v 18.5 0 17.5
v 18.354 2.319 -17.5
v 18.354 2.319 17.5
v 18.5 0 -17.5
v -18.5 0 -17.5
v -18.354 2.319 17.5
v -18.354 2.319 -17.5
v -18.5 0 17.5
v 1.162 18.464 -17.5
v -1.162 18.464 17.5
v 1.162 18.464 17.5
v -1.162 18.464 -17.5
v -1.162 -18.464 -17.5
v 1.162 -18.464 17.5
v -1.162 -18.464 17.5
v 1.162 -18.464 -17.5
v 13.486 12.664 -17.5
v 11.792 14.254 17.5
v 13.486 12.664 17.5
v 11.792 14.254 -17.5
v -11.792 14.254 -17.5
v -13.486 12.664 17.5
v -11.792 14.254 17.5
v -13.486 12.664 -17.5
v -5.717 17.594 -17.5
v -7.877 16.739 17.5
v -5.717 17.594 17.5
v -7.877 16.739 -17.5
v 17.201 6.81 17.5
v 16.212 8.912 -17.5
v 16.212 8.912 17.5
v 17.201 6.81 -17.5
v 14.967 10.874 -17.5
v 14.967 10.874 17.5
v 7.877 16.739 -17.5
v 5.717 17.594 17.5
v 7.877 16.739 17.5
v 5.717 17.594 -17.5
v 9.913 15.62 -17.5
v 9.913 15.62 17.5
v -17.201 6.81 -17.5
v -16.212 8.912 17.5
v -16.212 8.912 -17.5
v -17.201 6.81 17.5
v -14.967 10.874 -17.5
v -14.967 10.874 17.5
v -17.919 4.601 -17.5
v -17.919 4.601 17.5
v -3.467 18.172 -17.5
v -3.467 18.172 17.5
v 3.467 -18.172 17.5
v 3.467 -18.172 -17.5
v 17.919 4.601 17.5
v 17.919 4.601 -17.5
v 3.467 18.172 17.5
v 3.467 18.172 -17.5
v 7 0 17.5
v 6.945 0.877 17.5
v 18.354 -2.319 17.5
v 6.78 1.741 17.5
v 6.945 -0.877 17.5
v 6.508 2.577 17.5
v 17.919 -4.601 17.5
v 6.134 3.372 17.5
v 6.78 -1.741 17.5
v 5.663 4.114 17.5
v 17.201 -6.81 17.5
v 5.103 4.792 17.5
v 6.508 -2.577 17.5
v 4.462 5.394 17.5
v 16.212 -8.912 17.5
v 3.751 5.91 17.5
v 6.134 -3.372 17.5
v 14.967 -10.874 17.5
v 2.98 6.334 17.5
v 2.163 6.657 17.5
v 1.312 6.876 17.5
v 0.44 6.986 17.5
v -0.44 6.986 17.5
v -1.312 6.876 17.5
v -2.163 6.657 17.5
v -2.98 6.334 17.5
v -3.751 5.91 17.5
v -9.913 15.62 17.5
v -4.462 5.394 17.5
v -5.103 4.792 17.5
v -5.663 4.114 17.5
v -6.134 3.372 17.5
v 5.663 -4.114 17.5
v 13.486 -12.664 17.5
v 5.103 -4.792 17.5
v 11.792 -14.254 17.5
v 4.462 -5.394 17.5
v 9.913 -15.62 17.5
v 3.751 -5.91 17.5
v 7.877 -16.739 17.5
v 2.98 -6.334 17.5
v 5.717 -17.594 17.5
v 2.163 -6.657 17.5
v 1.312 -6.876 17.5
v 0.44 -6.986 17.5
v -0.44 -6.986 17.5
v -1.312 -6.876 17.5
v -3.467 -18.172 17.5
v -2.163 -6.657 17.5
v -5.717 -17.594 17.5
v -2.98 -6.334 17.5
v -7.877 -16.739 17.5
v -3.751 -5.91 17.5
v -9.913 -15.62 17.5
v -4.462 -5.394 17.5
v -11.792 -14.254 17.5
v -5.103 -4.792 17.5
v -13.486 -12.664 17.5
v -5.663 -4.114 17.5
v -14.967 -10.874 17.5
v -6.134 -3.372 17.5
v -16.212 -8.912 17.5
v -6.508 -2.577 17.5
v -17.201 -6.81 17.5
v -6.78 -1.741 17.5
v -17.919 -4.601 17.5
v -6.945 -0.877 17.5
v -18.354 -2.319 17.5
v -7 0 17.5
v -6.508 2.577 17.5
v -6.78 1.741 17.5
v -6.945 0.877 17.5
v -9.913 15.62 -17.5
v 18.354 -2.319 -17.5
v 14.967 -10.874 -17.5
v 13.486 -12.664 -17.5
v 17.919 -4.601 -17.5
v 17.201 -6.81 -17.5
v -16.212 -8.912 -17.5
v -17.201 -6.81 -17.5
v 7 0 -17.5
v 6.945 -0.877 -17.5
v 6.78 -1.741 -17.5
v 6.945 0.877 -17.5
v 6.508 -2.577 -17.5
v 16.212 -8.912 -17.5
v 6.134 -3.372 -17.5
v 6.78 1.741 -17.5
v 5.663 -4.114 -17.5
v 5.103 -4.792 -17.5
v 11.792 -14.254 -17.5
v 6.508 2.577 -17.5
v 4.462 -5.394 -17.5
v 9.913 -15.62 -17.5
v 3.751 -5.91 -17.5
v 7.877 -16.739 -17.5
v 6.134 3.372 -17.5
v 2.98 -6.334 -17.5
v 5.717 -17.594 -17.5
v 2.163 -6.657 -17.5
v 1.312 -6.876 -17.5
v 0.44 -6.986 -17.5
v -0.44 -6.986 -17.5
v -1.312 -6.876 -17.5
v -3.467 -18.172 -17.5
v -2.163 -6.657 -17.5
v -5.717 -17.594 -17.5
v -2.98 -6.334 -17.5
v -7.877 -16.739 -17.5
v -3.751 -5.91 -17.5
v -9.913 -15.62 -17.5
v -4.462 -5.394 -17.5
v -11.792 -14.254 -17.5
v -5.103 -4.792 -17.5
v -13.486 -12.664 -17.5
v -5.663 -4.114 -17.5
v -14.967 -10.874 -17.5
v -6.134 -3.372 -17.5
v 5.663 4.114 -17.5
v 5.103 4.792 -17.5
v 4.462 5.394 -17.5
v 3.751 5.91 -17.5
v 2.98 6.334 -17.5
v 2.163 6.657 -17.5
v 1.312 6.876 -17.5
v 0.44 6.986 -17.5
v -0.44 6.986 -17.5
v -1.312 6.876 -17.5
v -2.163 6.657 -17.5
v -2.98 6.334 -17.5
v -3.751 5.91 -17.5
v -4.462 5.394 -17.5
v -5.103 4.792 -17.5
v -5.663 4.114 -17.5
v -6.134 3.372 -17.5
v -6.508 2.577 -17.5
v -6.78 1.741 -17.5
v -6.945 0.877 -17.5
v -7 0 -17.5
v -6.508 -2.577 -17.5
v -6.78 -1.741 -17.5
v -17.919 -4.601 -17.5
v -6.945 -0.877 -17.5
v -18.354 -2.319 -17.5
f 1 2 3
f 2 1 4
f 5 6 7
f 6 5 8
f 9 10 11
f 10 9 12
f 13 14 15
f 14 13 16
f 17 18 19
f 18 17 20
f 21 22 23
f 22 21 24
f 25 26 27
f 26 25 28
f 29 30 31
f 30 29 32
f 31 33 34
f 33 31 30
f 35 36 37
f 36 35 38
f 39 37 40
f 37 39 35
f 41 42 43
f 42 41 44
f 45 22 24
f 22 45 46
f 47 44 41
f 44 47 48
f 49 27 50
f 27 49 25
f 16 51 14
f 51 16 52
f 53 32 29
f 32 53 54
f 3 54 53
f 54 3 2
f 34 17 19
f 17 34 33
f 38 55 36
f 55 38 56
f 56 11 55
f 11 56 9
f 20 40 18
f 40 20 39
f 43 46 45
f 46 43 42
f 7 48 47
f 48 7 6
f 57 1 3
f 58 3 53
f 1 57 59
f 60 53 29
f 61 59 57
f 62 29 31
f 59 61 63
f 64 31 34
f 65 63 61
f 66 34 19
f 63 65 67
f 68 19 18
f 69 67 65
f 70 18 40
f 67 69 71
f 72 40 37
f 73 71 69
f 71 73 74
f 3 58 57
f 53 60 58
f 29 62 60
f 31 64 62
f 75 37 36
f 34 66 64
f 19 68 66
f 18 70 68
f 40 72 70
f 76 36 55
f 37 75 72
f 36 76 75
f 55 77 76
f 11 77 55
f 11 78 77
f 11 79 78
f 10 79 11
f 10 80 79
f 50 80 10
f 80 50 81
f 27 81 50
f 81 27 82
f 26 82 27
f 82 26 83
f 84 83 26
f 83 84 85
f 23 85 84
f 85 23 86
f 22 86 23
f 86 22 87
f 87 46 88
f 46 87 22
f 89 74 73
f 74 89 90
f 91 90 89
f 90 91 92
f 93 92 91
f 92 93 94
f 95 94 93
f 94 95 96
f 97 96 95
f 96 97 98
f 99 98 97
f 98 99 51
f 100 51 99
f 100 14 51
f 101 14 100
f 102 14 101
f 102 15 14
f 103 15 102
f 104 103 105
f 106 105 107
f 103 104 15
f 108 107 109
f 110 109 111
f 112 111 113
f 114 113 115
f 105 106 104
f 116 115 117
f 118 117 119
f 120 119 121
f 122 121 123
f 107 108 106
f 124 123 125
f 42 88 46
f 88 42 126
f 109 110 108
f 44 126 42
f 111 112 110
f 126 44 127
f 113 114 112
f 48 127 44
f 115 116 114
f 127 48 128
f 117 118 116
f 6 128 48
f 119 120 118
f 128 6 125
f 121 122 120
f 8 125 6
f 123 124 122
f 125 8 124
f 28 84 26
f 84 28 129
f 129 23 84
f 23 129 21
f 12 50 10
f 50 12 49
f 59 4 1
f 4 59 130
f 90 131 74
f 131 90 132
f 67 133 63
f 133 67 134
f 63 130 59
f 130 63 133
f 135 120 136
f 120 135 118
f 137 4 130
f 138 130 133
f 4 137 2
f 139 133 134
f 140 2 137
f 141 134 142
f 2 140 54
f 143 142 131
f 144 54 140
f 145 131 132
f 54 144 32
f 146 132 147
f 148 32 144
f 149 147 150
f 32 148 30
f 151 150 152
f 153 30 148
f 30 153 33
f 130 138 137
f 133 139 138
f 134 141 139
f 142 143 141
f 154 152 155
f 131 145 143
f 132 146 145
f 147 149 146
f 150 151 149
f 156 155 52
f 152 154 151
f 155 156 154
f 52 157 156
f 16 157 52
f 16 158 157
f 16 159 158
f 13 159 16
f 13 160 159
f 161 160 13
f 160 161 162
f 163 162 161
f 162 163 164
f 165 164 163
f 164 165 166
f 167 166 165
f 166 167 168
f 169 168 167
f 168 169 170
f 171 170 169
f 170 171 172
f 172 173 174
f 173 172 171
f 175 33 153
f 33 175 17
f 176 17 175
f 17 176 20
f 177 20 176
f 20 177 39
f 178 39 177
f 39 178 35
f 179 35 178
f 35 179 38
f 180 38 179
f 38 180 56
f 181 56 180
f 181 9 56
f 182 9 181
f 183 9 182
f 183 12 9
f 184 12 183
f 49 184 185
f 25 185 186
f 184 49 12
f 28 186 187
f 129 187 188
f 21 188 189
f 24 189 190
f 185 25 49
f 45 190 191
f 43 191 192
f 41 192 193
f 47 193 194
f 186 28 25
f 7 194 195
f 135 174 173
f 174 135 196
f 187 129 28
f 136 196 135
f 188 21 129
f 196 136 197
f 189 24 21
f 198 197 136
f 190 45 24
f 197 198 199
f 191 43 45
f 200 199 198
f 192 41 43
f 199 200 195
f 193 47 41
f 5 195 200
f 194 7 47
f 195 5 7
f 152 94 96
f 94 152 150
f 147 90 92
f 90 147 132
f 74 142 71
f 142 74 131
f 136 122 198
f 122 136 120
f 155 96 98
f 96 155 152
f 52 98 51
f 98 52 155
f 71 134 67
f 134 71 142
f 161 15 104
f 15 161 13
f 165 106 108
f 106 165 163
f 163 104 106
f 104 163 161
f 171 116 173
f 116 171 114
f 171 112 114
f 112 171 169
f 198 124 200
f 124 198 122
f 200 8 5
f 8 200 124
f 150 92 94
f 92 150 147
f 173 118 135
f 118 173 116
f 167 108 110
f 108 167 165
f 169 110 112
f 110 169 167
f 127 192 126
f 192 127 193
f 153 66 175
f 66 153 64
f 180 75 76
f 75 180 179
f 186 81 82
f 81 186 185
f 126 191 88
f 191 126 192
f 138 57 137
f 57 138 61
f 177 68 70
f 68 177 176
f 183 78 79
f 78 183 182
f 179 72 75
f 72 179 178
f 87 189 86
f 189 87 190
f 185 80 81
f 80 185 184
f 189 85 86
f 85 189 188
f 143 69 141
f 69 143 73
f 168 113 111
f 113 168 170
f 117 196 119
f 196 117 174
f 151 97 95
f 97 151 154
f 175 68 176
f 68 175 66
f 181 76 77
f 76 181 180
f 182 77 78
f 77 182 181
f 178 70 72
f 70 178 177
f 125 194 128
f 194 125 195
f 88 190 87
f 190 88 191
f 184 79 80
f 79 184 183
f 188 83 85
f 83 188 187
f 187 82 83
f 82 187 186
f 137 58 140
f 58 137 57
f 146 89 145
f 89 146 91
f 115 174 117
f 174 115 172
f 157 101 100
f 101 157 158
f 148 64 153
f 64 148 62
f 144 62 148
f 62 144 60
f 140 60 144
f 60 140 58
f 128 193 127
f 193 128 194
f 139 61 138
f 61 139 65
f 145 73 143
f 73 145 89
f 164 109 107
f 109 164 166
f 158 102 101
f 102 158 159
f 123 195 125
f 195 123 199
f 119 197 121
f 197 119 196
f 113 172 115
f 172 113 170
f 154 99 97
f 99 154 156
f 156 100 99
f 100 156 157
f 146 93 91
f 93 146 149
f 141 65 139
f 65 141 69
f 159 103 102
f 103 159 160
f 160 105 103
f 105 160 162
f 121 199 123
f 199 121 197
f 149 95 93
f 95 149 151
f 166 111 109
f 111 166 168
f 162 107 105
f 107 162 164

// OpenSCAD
$fn = 50;


difference() {
	union() {
		translate(v = [0, 0, -17.5000000000]) {
			cylinder(h = 35, r = 18.5000000000);
		}
	}
	union() {
		translate(v = [0, 0, -100.0000000000]) {
			cylinder(h = 200, r = 7);
		}
	}
}
